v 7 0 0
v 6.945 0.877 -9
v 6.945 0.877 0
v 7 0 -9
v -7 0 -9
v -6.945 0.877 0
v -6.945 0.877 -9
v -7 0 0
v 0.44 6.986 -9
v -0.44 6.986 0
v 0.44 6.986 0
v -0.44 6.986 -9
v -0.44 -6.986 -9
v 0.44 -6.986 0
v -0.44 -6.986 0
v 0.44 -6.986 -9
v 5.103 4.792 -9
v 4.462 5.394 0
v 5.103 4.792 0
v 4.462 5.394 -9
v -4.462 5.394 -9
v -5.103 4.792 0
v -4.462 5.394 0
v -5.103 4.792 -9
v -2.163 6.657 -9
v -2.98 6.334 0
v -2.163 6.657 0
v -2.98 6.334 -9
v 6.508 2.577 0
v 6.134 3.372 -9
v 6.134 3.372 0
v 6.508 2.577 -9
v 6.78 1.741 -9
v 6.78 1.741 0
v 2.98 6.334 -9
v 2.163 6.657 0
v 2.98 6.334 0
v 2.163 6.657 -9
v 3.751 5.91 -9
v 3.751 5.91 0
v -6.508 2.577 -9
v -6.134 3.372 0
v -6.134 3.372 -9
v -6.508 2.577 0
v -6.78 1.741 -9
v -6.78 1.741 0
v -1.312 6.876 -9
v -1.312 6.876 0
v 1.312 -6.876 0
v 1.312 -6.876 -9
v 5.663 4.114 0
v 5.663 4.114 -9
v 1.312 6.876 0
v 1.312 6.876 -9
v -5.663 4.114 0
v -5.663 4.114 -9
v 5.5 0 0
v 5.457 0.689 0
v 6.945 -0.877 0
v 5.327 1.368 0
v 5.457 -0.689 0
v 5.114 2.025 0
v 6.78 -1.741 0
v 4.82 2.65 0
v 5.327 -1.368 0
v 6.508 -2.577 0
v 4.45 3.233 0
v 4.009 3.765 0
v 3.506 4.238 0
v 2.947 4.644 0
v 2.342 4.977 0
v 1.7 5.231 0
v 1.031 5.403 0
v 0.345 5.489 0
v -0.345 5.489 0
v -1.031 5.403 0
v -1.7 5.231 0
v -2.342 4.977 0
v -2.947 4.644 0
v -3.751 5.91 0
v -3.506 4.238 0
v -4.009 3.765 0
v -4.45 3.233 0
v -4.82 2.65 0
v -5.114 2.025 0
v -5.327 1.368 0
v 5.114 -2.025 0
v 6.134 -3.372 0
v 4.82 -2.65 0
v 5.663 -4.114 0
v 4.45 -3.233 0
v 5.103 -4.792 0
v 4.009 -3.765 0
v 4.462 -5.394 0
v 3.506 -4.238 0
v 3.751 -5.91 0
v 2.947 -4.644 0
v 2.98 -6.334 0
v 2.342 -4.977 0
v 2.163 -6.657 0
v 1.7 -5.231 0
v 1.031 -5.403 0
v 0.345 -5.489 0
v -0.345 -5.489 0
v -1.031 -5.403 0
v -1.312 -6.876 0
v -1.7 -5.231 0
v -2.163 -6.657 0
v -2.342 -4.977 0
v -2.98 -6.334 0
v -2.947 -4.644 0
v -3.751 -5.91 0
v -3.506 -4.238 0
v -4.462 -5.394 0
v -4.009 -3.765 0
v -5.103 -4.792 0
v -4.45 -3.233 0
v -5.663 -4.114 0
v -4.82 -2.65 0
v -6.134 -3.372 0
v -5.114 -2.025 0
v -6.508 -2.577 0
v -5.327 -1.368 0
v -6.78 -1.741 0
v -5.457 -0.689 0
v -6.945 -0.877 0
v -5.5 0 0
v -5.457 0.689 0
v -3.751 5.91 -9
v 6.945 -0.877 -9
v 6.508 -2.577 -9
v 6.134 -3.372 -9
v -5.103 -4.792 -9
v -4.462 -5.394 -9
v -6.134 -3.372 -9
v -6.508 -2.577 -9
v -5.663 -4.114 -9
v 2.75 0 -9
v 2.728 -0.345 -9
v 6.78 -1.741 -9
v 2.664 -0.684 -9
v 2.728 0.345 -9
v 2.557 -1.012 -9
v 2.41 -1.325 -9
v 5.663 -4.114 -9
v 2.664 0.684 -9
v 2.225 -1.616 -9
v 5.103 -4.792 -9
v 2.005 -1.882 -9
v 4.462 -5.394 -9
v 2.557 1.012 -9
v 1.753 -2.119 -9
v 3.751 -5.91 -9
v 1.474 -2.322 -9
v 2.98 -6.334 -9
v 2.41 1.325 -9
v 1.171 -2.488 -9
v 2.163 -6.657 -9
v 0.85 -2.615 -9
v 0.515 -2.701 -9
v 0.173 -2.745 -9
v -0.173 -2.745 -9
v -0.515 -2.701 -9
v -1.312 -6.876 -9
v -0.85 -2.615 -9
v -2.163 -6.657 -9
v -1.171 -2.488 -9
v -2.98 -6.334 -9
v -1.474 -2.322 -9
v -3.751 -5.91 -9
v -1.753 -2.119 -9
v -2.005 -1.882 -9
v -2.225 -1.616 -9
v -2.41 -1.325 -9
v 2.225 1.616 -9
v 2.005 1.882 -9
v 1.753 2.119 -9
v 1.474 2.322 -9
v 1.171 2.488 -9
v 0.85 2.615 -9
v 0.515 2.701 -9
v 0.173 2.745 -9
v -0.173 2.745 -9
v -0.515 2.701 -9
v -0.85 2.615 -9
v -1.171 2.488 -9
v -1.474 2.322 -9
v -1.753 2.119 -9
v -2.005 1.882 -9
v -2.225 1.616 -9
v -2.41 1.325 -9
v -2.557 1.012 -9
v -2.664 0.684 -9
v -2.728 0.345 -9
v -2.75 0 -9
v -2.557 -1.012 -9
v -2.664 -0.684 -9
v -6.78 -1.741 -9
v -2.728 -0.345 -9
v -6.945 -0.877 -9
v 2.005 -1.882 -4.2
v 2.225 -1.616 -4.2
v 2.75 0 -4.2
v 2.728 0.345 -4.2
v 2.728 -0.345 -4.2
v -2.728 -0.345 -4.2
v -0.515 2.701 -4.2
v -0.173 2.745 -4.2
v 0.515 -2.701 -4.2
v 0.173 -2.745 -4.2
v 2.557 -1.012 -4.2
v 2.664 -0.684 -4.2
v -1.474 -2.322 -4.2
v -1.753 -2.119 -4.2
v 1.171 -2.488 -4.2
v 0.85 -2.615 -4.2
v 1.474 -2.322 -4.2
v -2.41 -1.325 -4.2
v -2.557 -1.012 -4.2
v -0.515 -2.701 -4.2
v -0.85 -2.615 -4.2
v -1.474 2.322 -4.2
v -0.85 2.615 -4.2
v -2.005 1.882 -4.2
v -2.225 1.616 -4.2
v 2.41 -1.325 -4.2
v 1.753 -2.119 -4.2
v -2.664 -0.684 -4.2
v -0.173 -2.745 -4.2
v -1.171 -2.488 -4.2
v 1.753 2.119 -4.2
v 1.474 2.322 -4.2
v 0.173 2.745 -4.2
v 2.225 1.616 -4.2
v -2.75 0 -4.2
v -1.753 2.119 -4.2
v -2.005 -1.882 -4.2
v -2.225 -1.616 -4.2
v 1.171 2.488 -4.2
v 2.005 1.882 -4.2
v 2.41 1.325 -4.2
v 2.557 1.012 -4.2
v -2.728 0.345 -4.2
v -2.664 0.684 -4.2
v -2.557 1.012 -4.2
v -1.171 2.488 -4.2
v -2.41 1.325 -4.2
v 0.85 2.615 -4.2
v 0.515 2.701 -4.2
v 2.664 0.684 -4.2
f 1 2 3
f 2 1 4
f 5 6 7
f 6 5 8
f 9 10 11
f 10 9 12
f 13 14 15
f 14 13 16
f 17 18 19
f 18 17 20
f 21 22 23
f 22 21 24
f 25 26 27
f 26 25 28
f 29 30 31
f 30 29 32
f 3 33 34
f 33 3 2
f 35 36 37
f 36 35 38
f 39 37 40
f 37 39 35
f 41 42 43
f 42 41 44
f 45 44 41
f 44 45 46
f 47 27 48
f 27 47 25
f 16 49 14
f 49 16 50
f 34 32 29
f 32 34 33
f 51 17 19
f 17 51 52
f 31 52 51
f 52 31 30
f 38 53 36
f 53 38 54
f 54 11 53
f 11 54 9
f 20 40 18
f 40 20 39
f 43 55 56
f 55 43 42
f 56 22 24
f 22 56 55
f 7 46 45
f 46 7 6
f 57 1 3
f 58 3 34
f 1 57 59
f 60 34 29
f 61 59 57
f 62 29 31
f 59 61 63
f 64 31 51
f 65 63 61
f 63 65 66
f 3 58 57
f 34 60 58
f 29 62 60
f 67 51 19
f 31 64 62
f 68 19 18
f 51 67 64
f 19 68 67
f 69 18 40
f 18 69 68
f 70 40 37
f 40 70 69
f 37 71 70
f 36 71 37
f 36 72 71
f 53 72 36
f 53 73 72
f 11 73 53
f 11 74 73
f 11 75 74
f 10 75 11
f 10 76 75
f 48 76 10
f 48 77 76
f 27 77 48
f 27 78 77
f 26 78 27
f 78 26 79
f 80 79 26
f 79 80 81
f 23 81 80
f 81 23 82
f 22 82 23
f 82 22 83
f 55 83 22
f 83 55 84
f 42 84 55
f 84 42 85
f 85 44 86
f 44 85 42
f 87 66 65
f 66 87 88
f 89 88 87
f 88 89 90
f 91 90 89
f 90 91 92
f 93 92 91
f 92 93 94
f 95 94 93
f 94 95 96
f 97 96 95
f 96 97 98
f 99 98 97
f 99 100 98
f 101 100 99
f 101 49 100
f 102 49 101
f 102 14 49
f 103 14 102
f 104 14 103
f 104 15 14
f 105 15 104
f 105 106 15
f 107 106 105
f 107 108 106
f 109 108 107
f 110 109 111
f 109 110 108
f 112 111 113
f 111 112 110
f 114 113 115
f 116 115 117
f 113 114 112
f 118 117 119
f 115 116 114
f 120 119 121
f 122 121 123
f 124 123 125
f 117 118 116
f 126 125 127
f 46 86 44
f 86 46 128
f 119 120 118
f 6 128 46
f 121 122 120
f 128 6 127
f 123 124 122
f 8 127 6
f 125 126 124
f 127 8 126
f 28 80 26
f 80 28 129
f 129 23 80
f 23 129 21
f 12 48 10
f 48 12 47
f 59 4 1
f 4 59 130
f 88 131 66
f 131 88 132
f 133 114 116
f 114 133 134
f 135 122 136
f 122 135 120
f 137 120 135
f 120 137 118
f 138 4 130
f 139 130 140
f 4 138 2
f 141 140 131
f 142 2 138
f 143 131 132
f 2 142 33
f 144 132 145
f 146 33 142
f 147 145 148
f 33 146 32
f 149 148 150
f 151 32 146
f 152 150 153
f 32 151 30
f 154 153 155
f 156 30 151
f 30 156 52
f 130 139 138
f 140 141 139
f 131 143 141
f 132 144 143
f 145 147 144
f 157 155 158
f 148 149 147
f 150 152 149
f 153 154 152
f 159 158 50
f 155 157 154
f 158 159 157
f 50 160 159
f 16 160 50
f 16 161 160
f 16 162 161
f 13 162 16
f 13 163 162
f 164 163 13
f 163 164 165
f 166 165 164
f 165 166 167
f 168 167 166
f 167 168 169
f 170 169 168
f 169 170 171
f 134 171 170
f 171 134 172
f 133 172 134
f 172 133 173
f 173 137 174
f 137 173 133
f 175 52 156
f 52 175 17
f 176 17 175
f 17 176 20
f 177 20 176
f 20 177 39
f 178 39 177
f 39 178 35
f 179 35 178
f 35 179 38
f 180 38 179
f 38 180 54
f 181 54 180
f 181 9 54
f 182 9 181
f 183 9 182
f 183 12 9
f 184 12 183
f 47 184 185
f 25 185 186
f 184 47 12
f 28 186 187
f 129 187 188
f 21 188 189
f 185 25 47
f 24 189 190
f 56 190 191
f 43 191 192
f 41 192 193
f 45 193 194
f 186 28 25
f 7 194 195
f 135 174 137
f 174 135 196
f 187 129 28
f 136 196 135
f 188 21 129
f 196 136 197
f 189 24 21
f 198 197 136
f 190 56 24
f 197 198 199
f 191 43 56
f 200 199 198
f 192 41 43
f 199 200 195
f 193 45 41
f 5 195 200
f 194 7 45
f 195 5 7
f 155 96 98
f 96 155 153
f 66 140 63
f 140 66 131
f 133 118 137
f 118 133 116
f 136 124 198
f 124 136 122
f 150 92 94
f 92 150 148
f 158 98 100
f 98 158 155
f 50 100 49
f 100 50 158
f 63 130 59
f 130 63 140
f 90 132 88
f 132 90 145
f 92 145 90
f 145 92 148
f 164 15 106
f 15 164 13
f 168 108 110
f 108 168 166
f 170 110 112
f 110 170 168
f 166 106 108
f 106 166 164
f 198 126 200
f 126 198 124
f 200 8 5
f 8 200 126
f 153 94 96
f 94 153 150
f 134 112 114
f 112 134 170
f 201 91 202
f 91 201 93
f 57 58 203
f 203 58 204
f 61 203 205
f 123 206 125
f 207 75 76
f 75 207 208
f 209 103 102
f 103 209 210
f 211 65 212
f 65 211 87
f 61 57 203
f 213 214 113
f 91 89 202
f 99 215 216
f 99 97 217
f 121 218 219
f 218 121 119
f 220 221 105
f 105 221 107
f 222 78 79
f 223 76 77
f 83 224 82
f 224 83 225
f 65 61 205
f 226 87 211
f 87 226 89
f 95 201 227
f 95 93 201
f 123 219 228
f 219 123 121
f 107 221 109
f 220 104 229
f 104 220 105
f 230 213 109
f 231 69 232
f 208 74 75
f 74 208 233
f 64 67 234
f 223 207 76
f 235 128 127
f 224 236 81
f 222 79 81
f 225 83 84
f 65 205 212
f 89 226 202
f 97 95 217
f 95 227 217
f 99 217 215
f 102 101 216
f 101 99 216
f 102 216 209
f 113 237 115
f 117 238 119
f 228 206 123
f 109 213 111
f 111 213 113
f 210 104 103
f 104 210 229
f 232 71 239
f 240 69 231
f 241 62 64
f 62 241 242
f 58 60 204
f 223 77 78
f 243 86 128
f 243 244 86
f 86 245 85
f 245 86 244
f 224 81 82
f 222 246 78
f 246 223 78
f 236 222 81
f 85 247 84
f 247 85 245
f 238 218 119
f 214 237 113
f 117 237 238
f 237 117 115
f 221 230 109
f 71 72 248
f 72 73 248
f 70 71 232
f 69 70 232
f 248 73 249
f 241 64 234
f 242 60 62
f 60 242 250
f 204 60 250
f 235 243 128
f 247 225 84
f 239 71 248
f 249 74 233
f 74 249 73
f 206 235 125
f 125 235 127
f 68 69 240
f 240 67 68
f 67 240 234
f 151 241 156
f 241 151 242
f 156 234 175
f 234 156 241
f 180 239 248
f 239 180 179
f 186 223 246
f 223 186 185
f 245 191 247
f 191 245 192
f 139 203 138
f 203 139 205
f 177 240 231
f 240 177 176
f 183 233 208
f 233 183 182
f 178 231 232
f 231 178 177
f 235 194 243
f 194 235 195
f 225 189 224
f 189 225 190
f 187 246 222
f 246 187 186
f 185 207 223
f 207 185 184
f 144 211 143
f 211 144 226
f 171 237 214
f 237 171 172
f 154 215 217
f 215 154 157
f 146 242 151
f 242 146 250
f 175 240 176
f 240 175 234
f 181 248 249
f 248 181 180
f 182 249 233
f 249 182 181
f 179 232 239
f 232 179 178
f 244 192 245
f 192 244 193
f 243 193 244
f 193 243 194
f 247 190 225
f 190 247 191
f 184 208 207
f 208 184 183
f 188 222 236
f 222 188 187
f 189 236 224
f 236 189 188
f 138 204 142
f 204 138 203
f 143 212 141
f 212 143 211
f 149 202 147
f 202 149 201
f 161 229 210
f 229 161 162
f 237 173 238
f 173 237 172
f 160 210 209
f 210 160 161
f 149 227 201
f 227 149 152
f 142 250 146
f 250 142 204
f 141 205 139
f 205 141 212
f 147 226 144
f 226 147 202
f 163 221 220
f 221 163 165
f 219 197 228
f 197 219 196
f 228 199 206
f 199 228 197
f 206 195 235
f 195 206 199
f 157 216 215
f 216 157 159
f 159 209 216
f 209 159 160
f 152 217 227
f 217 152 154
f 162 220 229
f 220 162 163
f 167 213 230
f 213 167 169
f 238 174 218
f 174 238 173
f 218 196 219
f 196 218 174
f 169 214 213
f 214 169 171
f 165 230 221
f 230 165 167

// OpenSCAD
$fn = 50;


difference() {
	union() {
		translate(v = [0, 0, -9.0000000000]) {
			cylinder(h = 9, r = 7.0000000000);
		}
		translate(v = [0, 0, -9.0000000000]) {
			cylinder(h = 9, r = 2.8750000000);
		}
	}
	union() {
		translate(v = [0, 0, 0]) {
			rotate(a = [0, 0, 0]) {
				difference() {
					union() {
						#translate(v = [0, 0, -9.0000000000]) {
							cylinder(h = 9, r = 2.2500000000);
						}
						#translate(v = [0, 0, -4.2000000000]) {
							cylinder(h = 4.2000000000, r1 = 2.7500000000, r2 = 5.5000000000);
						}
						#translate(v = [0, 0, -9.0000000000]) {
							cylinder(h = 9, r = 2.7500000000);
						}
						#translate(v = [0, 0, -9.0000000000]) {
							cylinder(h = 9, r = 2.2500000000);
						}
					}
					union();
				}
			}
		}
	}
}
